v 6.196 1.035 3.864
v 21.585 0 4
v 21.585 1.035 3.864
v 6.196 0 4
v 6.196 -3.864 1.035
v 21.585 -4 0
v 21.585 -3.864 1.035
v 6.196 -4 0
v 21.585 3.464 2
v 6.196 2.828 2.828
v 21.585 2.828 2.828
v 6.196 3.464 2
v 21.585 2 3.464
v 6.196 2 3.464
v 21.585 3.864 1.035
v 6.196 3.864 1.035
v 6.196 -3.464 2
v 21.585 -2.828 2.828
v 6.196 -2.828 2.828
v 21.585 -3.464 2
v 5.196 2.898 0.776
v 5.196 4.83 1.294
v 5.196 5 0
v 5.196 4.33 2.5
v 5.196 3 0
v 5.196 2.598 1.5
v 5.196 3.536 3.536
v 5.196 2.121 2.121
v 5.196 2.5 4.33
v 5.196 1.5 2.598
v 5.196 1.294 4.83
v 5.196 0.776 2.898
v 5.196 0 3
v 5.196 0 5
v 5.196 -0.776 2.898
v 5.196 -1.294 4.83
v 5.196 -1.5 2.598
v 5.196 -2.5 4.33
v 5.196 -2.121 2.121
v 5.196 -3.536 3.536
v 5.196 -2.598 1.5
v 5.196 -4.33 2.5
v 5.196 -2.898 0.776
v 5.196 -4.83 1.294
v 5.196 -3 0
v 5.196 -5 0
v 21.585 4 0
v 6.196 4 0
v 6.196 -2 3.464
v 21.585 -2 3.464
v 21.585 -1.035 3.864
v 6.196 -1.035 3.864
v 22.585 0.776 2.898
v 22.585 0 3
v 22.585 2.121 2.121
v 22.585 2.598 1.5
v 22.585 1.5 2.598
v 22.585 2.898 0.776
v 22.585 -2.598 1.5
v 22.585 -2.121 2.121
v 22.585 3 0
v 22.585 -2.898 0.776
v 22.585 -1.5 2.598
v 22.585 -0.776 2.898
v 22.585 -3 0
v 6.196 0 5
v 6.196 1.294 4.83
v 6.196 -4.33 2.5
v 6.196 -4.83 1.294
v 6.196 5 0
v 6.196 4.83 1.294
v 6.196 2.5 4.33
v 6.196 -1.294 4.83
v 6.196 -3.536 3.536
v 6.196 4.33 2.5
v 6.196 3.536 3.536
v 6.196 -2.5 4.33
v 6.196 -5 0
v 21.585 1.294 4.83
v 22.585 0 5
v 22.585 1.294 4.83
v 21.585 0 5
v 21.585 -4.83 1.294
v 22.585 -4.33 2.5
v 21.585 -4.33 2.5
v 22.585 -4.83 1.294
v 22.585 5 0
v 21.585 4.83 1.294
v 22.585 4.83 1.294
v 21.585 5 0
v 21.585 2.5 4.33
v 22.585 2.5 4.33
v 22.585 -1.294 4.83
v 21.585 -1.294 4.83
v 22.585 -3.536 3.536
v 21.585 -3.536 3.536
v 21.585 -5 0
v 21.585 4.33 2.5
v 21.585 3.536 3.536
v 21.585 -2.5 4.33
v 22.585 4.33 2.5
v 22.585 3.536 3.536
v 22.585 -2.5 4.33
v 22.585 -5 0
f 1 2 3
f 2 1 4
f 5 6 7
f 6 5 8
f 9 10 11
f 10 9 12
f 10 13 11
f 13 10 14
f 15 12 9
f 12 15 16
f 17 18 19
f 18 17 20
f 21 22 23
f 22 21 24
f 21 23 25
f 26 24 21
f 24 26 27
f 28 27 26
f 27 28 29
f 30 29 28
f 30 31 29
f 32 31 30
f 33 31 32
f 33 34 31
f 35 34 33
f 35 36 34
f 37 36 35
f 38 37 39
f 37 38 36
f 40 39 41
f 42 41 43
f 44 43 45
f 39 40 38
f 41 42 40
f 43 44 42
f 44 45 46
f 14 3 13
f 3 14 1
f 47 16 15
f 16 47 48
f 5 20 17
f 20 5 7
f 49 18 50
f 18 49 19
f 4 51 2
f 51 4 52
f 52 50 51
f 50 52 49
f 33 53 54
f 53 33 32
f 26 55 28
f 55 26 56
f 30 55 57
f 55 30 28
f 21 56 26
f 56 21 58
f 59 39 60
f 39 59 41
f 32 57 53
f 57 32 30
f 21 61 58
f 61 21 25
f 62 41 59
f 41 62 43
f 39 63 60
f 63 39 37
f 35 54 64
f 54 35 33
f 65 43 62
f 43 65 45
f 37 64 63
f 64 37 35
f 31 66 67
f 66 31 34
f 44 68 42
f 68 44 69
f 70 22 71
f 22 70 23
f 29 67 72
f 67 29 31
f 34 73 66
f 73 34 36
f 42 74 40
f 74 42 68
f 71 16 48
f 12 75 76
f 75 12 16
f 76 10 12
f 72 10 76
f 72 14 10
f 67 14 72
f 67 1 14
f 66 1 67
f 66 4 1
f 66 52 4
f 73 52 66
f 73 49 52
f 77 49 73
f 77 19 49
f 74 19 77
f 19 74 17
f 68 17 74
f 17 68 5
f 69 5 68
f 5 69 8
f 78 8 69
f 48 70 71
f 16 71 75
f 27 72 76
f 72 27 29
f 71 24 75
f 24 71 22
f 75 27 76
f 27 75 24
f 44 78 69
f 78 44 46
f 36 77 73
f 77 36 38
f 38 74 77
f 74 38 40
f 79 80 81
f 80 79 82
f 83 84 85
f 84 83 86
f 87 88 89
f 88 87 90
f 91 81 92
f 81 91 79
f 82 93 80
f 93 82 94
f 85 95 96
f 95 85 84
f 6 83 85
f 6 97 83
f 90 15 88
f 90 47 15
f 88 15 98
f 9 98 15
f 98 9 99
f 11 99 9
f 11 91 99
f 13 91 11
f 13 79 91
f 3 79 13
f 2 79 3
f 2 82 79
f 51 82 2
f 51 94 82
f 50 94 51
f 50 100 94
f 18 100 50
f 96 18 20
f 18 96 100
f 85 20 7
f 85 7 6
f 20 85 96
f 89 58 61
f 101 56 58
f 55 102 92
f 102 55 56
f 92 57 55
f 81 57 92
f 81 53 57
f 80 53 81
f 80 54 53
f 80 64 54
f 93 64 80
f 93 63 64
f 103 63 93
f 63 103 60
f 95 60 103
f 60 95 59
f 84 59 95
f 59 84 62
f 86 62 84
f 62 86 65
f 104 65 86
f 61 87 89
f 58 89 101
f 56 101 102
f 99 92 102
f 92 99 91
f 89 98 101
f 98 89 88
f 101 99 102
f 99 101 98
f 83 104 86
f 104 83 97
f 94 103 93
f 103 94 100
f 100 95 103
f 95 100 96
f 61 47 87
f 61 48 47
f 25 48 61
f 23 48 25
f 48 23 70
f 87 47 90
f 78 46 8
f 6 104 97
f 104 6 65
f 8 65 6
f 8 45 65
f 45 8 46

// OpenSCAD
// file: ../build_environments.scad
// build_environments.scad: modules to build level sections
//

module pool(diameter=10.0, wall_height=2.0, step_width=3.0, connections=[])
{
    difference() {
        union() {
        difference() {
            cylinder(h=0.5,r1=diameter+step_width,r2=diameter+step_width,$fn=48);
            translate([0,0,-0.1])
                cylinder(h=0.7,r1=diameter,r2=diameter,$fn=48);
        }
        difference() {
            cylinder(h=wall_height,r1=diameter+step_width+1.0,r2=diameter+step_width+1.0,$fn=48);
            translate([0,0,-0.1])
                cylinder(h=wall_height+0.2,r1=diameter+step_width,r2=diameter+step_width,$fn=48);
        }
        }
    
        for (c = connections)
        {
            rotate([0,90,0]) {
                angle = atan2(c[1],c[0]);
                rotate([-angle,0,0]) {
                    cylinder(h=diameter+5.0,r1=c[2],r2=c[2],$fn=48);
                }
            }
        }
    }
}

module straight(length=10.0, width=2.0, dy1=0.0, dy2=0.0, dz=0.0)
{
    dims = [0, 0, 0, 0, 0, (dz/length)];
    matrix = [
        [ 1, dims[0], dims[1], 0 ],
        [ dims[2], 1, dims[4], 0 ],
        [ dims[5], dims[3], 1, 0 ],
        [ 0, 0, 0, 1 ]
    ];
    multmatrix(matrix)
    difference() {
        translate([dy1,0,0])
        union() {
            rotate([0,90,0]) {
                difference() {
                    cylinder(h=(length-dy1-dy2),r1=width+1.0,r2=width+1.0,$fn=24);
                    translate([0,0,-0.1])
                        cylinder(h=(length-dy1-dy2+0.2),r1=width,r2=width,$fn=24);
                }
                difference() {
                    cylinder(h=1.0,r1=width+2.0,r2=width+2.0,$fn=24);
                    translate([0,0,-0.1])
                        cylinder(h=1.2,r1=width,r2=width,$fn=24);
                }
                translate([0,0,(length-dy1-dy2)-1.0]) {
                    difference() {
                        cylinder(h=1.0,r1=width+2.0,r2=width+2.0,$fn=24);
                        translate([0,0,-0.1])
                            cylinder(h=1.2,r1=width,r2=width,$fn=24);
                    }
                }
            }
        }
        translate([0,0,-(2*width+4.0)/2])
            cube([3*length,3*length,2*width+4.0],center=true);
    }
}

module curve(p0=[0,0], center=[0,0], dir=1, angle=0.0, width=2.0)
{
    radius = sqrt((p0[0]-center[0])*(p0[0]-center[0]) + (p0[1]-center[1])*(p0[1]-center[1]));
    if (dir == 0) {
        difference() {
            rotate([0,0,-90])
            difference() {
                rotate_extrude(angle = angle, convexity = 10, $fn=32)
                    translate([radius, 0, 0])
                        circle(r = width+1.0,$fn=24);
                rotate([0,0,-1.0])
                    rotate_extrude(angle = angle+2.0, convexity = 10, $fn=32)
                        translate([radius, 0, 0])
                            circle(r = width,$fn=24);
            }
            translate([0,0,-(2*width+4.0)/2])
                cube([5*radius,5*radius,2*width+4.0],center=true);
        }
    }
    else {
        difference() {
            rotate([0,0,90])
            difference() {
                rotate_extrude(angle = -angle, convexity = 10, $fn=32)
                    translate([radius, 0, 0])
                        circle(r = width+1.0,$fn=24);
                rotate([0,0,1.0])
                    rotate_extrude(angle = -angle-2.0, convexity = 10, $fn=32)
                        translate([radius, 0, 0])
                            circle(r = width,$fn=24);
            }
            translate([0,0,-(2*width+4.0)/2])
                cube([5*radius,5*radius,2*width+4.0],center=true);
        }
    }

}

// test pool
//pool(diameter=12.0000, wall_height=3.0000, step_width=3.0000, connections=[[0.0000,-26.0000,2.0000], [23.6074,0.0000,2.0000]]);

// test straight, slope
//straight(length=26.0000, width=2.0000, dy1=11.8322, dy2=6.7082, dz=0.0000);
//straight(length=29.1549, width=12.0000, dy1=0.0000, dy2=0.0000, dz=-15.0000);

// test curve
//curve(p0=[23.6074, 0.0000], center=[23.6074, 5.0000], dir=0, angle=60.1011, width=2.0000);
//curve(p0=[33.6426, 12.4219], center=[37.9771, 9.9295], dir=1, angle=120.4627, width=2.0000);
// main file
use <../build_environments.scad>;
straight(length=22.5852, width=3.0000, dy1=5.1962, dy2=0.0000, dz=0.0000);
